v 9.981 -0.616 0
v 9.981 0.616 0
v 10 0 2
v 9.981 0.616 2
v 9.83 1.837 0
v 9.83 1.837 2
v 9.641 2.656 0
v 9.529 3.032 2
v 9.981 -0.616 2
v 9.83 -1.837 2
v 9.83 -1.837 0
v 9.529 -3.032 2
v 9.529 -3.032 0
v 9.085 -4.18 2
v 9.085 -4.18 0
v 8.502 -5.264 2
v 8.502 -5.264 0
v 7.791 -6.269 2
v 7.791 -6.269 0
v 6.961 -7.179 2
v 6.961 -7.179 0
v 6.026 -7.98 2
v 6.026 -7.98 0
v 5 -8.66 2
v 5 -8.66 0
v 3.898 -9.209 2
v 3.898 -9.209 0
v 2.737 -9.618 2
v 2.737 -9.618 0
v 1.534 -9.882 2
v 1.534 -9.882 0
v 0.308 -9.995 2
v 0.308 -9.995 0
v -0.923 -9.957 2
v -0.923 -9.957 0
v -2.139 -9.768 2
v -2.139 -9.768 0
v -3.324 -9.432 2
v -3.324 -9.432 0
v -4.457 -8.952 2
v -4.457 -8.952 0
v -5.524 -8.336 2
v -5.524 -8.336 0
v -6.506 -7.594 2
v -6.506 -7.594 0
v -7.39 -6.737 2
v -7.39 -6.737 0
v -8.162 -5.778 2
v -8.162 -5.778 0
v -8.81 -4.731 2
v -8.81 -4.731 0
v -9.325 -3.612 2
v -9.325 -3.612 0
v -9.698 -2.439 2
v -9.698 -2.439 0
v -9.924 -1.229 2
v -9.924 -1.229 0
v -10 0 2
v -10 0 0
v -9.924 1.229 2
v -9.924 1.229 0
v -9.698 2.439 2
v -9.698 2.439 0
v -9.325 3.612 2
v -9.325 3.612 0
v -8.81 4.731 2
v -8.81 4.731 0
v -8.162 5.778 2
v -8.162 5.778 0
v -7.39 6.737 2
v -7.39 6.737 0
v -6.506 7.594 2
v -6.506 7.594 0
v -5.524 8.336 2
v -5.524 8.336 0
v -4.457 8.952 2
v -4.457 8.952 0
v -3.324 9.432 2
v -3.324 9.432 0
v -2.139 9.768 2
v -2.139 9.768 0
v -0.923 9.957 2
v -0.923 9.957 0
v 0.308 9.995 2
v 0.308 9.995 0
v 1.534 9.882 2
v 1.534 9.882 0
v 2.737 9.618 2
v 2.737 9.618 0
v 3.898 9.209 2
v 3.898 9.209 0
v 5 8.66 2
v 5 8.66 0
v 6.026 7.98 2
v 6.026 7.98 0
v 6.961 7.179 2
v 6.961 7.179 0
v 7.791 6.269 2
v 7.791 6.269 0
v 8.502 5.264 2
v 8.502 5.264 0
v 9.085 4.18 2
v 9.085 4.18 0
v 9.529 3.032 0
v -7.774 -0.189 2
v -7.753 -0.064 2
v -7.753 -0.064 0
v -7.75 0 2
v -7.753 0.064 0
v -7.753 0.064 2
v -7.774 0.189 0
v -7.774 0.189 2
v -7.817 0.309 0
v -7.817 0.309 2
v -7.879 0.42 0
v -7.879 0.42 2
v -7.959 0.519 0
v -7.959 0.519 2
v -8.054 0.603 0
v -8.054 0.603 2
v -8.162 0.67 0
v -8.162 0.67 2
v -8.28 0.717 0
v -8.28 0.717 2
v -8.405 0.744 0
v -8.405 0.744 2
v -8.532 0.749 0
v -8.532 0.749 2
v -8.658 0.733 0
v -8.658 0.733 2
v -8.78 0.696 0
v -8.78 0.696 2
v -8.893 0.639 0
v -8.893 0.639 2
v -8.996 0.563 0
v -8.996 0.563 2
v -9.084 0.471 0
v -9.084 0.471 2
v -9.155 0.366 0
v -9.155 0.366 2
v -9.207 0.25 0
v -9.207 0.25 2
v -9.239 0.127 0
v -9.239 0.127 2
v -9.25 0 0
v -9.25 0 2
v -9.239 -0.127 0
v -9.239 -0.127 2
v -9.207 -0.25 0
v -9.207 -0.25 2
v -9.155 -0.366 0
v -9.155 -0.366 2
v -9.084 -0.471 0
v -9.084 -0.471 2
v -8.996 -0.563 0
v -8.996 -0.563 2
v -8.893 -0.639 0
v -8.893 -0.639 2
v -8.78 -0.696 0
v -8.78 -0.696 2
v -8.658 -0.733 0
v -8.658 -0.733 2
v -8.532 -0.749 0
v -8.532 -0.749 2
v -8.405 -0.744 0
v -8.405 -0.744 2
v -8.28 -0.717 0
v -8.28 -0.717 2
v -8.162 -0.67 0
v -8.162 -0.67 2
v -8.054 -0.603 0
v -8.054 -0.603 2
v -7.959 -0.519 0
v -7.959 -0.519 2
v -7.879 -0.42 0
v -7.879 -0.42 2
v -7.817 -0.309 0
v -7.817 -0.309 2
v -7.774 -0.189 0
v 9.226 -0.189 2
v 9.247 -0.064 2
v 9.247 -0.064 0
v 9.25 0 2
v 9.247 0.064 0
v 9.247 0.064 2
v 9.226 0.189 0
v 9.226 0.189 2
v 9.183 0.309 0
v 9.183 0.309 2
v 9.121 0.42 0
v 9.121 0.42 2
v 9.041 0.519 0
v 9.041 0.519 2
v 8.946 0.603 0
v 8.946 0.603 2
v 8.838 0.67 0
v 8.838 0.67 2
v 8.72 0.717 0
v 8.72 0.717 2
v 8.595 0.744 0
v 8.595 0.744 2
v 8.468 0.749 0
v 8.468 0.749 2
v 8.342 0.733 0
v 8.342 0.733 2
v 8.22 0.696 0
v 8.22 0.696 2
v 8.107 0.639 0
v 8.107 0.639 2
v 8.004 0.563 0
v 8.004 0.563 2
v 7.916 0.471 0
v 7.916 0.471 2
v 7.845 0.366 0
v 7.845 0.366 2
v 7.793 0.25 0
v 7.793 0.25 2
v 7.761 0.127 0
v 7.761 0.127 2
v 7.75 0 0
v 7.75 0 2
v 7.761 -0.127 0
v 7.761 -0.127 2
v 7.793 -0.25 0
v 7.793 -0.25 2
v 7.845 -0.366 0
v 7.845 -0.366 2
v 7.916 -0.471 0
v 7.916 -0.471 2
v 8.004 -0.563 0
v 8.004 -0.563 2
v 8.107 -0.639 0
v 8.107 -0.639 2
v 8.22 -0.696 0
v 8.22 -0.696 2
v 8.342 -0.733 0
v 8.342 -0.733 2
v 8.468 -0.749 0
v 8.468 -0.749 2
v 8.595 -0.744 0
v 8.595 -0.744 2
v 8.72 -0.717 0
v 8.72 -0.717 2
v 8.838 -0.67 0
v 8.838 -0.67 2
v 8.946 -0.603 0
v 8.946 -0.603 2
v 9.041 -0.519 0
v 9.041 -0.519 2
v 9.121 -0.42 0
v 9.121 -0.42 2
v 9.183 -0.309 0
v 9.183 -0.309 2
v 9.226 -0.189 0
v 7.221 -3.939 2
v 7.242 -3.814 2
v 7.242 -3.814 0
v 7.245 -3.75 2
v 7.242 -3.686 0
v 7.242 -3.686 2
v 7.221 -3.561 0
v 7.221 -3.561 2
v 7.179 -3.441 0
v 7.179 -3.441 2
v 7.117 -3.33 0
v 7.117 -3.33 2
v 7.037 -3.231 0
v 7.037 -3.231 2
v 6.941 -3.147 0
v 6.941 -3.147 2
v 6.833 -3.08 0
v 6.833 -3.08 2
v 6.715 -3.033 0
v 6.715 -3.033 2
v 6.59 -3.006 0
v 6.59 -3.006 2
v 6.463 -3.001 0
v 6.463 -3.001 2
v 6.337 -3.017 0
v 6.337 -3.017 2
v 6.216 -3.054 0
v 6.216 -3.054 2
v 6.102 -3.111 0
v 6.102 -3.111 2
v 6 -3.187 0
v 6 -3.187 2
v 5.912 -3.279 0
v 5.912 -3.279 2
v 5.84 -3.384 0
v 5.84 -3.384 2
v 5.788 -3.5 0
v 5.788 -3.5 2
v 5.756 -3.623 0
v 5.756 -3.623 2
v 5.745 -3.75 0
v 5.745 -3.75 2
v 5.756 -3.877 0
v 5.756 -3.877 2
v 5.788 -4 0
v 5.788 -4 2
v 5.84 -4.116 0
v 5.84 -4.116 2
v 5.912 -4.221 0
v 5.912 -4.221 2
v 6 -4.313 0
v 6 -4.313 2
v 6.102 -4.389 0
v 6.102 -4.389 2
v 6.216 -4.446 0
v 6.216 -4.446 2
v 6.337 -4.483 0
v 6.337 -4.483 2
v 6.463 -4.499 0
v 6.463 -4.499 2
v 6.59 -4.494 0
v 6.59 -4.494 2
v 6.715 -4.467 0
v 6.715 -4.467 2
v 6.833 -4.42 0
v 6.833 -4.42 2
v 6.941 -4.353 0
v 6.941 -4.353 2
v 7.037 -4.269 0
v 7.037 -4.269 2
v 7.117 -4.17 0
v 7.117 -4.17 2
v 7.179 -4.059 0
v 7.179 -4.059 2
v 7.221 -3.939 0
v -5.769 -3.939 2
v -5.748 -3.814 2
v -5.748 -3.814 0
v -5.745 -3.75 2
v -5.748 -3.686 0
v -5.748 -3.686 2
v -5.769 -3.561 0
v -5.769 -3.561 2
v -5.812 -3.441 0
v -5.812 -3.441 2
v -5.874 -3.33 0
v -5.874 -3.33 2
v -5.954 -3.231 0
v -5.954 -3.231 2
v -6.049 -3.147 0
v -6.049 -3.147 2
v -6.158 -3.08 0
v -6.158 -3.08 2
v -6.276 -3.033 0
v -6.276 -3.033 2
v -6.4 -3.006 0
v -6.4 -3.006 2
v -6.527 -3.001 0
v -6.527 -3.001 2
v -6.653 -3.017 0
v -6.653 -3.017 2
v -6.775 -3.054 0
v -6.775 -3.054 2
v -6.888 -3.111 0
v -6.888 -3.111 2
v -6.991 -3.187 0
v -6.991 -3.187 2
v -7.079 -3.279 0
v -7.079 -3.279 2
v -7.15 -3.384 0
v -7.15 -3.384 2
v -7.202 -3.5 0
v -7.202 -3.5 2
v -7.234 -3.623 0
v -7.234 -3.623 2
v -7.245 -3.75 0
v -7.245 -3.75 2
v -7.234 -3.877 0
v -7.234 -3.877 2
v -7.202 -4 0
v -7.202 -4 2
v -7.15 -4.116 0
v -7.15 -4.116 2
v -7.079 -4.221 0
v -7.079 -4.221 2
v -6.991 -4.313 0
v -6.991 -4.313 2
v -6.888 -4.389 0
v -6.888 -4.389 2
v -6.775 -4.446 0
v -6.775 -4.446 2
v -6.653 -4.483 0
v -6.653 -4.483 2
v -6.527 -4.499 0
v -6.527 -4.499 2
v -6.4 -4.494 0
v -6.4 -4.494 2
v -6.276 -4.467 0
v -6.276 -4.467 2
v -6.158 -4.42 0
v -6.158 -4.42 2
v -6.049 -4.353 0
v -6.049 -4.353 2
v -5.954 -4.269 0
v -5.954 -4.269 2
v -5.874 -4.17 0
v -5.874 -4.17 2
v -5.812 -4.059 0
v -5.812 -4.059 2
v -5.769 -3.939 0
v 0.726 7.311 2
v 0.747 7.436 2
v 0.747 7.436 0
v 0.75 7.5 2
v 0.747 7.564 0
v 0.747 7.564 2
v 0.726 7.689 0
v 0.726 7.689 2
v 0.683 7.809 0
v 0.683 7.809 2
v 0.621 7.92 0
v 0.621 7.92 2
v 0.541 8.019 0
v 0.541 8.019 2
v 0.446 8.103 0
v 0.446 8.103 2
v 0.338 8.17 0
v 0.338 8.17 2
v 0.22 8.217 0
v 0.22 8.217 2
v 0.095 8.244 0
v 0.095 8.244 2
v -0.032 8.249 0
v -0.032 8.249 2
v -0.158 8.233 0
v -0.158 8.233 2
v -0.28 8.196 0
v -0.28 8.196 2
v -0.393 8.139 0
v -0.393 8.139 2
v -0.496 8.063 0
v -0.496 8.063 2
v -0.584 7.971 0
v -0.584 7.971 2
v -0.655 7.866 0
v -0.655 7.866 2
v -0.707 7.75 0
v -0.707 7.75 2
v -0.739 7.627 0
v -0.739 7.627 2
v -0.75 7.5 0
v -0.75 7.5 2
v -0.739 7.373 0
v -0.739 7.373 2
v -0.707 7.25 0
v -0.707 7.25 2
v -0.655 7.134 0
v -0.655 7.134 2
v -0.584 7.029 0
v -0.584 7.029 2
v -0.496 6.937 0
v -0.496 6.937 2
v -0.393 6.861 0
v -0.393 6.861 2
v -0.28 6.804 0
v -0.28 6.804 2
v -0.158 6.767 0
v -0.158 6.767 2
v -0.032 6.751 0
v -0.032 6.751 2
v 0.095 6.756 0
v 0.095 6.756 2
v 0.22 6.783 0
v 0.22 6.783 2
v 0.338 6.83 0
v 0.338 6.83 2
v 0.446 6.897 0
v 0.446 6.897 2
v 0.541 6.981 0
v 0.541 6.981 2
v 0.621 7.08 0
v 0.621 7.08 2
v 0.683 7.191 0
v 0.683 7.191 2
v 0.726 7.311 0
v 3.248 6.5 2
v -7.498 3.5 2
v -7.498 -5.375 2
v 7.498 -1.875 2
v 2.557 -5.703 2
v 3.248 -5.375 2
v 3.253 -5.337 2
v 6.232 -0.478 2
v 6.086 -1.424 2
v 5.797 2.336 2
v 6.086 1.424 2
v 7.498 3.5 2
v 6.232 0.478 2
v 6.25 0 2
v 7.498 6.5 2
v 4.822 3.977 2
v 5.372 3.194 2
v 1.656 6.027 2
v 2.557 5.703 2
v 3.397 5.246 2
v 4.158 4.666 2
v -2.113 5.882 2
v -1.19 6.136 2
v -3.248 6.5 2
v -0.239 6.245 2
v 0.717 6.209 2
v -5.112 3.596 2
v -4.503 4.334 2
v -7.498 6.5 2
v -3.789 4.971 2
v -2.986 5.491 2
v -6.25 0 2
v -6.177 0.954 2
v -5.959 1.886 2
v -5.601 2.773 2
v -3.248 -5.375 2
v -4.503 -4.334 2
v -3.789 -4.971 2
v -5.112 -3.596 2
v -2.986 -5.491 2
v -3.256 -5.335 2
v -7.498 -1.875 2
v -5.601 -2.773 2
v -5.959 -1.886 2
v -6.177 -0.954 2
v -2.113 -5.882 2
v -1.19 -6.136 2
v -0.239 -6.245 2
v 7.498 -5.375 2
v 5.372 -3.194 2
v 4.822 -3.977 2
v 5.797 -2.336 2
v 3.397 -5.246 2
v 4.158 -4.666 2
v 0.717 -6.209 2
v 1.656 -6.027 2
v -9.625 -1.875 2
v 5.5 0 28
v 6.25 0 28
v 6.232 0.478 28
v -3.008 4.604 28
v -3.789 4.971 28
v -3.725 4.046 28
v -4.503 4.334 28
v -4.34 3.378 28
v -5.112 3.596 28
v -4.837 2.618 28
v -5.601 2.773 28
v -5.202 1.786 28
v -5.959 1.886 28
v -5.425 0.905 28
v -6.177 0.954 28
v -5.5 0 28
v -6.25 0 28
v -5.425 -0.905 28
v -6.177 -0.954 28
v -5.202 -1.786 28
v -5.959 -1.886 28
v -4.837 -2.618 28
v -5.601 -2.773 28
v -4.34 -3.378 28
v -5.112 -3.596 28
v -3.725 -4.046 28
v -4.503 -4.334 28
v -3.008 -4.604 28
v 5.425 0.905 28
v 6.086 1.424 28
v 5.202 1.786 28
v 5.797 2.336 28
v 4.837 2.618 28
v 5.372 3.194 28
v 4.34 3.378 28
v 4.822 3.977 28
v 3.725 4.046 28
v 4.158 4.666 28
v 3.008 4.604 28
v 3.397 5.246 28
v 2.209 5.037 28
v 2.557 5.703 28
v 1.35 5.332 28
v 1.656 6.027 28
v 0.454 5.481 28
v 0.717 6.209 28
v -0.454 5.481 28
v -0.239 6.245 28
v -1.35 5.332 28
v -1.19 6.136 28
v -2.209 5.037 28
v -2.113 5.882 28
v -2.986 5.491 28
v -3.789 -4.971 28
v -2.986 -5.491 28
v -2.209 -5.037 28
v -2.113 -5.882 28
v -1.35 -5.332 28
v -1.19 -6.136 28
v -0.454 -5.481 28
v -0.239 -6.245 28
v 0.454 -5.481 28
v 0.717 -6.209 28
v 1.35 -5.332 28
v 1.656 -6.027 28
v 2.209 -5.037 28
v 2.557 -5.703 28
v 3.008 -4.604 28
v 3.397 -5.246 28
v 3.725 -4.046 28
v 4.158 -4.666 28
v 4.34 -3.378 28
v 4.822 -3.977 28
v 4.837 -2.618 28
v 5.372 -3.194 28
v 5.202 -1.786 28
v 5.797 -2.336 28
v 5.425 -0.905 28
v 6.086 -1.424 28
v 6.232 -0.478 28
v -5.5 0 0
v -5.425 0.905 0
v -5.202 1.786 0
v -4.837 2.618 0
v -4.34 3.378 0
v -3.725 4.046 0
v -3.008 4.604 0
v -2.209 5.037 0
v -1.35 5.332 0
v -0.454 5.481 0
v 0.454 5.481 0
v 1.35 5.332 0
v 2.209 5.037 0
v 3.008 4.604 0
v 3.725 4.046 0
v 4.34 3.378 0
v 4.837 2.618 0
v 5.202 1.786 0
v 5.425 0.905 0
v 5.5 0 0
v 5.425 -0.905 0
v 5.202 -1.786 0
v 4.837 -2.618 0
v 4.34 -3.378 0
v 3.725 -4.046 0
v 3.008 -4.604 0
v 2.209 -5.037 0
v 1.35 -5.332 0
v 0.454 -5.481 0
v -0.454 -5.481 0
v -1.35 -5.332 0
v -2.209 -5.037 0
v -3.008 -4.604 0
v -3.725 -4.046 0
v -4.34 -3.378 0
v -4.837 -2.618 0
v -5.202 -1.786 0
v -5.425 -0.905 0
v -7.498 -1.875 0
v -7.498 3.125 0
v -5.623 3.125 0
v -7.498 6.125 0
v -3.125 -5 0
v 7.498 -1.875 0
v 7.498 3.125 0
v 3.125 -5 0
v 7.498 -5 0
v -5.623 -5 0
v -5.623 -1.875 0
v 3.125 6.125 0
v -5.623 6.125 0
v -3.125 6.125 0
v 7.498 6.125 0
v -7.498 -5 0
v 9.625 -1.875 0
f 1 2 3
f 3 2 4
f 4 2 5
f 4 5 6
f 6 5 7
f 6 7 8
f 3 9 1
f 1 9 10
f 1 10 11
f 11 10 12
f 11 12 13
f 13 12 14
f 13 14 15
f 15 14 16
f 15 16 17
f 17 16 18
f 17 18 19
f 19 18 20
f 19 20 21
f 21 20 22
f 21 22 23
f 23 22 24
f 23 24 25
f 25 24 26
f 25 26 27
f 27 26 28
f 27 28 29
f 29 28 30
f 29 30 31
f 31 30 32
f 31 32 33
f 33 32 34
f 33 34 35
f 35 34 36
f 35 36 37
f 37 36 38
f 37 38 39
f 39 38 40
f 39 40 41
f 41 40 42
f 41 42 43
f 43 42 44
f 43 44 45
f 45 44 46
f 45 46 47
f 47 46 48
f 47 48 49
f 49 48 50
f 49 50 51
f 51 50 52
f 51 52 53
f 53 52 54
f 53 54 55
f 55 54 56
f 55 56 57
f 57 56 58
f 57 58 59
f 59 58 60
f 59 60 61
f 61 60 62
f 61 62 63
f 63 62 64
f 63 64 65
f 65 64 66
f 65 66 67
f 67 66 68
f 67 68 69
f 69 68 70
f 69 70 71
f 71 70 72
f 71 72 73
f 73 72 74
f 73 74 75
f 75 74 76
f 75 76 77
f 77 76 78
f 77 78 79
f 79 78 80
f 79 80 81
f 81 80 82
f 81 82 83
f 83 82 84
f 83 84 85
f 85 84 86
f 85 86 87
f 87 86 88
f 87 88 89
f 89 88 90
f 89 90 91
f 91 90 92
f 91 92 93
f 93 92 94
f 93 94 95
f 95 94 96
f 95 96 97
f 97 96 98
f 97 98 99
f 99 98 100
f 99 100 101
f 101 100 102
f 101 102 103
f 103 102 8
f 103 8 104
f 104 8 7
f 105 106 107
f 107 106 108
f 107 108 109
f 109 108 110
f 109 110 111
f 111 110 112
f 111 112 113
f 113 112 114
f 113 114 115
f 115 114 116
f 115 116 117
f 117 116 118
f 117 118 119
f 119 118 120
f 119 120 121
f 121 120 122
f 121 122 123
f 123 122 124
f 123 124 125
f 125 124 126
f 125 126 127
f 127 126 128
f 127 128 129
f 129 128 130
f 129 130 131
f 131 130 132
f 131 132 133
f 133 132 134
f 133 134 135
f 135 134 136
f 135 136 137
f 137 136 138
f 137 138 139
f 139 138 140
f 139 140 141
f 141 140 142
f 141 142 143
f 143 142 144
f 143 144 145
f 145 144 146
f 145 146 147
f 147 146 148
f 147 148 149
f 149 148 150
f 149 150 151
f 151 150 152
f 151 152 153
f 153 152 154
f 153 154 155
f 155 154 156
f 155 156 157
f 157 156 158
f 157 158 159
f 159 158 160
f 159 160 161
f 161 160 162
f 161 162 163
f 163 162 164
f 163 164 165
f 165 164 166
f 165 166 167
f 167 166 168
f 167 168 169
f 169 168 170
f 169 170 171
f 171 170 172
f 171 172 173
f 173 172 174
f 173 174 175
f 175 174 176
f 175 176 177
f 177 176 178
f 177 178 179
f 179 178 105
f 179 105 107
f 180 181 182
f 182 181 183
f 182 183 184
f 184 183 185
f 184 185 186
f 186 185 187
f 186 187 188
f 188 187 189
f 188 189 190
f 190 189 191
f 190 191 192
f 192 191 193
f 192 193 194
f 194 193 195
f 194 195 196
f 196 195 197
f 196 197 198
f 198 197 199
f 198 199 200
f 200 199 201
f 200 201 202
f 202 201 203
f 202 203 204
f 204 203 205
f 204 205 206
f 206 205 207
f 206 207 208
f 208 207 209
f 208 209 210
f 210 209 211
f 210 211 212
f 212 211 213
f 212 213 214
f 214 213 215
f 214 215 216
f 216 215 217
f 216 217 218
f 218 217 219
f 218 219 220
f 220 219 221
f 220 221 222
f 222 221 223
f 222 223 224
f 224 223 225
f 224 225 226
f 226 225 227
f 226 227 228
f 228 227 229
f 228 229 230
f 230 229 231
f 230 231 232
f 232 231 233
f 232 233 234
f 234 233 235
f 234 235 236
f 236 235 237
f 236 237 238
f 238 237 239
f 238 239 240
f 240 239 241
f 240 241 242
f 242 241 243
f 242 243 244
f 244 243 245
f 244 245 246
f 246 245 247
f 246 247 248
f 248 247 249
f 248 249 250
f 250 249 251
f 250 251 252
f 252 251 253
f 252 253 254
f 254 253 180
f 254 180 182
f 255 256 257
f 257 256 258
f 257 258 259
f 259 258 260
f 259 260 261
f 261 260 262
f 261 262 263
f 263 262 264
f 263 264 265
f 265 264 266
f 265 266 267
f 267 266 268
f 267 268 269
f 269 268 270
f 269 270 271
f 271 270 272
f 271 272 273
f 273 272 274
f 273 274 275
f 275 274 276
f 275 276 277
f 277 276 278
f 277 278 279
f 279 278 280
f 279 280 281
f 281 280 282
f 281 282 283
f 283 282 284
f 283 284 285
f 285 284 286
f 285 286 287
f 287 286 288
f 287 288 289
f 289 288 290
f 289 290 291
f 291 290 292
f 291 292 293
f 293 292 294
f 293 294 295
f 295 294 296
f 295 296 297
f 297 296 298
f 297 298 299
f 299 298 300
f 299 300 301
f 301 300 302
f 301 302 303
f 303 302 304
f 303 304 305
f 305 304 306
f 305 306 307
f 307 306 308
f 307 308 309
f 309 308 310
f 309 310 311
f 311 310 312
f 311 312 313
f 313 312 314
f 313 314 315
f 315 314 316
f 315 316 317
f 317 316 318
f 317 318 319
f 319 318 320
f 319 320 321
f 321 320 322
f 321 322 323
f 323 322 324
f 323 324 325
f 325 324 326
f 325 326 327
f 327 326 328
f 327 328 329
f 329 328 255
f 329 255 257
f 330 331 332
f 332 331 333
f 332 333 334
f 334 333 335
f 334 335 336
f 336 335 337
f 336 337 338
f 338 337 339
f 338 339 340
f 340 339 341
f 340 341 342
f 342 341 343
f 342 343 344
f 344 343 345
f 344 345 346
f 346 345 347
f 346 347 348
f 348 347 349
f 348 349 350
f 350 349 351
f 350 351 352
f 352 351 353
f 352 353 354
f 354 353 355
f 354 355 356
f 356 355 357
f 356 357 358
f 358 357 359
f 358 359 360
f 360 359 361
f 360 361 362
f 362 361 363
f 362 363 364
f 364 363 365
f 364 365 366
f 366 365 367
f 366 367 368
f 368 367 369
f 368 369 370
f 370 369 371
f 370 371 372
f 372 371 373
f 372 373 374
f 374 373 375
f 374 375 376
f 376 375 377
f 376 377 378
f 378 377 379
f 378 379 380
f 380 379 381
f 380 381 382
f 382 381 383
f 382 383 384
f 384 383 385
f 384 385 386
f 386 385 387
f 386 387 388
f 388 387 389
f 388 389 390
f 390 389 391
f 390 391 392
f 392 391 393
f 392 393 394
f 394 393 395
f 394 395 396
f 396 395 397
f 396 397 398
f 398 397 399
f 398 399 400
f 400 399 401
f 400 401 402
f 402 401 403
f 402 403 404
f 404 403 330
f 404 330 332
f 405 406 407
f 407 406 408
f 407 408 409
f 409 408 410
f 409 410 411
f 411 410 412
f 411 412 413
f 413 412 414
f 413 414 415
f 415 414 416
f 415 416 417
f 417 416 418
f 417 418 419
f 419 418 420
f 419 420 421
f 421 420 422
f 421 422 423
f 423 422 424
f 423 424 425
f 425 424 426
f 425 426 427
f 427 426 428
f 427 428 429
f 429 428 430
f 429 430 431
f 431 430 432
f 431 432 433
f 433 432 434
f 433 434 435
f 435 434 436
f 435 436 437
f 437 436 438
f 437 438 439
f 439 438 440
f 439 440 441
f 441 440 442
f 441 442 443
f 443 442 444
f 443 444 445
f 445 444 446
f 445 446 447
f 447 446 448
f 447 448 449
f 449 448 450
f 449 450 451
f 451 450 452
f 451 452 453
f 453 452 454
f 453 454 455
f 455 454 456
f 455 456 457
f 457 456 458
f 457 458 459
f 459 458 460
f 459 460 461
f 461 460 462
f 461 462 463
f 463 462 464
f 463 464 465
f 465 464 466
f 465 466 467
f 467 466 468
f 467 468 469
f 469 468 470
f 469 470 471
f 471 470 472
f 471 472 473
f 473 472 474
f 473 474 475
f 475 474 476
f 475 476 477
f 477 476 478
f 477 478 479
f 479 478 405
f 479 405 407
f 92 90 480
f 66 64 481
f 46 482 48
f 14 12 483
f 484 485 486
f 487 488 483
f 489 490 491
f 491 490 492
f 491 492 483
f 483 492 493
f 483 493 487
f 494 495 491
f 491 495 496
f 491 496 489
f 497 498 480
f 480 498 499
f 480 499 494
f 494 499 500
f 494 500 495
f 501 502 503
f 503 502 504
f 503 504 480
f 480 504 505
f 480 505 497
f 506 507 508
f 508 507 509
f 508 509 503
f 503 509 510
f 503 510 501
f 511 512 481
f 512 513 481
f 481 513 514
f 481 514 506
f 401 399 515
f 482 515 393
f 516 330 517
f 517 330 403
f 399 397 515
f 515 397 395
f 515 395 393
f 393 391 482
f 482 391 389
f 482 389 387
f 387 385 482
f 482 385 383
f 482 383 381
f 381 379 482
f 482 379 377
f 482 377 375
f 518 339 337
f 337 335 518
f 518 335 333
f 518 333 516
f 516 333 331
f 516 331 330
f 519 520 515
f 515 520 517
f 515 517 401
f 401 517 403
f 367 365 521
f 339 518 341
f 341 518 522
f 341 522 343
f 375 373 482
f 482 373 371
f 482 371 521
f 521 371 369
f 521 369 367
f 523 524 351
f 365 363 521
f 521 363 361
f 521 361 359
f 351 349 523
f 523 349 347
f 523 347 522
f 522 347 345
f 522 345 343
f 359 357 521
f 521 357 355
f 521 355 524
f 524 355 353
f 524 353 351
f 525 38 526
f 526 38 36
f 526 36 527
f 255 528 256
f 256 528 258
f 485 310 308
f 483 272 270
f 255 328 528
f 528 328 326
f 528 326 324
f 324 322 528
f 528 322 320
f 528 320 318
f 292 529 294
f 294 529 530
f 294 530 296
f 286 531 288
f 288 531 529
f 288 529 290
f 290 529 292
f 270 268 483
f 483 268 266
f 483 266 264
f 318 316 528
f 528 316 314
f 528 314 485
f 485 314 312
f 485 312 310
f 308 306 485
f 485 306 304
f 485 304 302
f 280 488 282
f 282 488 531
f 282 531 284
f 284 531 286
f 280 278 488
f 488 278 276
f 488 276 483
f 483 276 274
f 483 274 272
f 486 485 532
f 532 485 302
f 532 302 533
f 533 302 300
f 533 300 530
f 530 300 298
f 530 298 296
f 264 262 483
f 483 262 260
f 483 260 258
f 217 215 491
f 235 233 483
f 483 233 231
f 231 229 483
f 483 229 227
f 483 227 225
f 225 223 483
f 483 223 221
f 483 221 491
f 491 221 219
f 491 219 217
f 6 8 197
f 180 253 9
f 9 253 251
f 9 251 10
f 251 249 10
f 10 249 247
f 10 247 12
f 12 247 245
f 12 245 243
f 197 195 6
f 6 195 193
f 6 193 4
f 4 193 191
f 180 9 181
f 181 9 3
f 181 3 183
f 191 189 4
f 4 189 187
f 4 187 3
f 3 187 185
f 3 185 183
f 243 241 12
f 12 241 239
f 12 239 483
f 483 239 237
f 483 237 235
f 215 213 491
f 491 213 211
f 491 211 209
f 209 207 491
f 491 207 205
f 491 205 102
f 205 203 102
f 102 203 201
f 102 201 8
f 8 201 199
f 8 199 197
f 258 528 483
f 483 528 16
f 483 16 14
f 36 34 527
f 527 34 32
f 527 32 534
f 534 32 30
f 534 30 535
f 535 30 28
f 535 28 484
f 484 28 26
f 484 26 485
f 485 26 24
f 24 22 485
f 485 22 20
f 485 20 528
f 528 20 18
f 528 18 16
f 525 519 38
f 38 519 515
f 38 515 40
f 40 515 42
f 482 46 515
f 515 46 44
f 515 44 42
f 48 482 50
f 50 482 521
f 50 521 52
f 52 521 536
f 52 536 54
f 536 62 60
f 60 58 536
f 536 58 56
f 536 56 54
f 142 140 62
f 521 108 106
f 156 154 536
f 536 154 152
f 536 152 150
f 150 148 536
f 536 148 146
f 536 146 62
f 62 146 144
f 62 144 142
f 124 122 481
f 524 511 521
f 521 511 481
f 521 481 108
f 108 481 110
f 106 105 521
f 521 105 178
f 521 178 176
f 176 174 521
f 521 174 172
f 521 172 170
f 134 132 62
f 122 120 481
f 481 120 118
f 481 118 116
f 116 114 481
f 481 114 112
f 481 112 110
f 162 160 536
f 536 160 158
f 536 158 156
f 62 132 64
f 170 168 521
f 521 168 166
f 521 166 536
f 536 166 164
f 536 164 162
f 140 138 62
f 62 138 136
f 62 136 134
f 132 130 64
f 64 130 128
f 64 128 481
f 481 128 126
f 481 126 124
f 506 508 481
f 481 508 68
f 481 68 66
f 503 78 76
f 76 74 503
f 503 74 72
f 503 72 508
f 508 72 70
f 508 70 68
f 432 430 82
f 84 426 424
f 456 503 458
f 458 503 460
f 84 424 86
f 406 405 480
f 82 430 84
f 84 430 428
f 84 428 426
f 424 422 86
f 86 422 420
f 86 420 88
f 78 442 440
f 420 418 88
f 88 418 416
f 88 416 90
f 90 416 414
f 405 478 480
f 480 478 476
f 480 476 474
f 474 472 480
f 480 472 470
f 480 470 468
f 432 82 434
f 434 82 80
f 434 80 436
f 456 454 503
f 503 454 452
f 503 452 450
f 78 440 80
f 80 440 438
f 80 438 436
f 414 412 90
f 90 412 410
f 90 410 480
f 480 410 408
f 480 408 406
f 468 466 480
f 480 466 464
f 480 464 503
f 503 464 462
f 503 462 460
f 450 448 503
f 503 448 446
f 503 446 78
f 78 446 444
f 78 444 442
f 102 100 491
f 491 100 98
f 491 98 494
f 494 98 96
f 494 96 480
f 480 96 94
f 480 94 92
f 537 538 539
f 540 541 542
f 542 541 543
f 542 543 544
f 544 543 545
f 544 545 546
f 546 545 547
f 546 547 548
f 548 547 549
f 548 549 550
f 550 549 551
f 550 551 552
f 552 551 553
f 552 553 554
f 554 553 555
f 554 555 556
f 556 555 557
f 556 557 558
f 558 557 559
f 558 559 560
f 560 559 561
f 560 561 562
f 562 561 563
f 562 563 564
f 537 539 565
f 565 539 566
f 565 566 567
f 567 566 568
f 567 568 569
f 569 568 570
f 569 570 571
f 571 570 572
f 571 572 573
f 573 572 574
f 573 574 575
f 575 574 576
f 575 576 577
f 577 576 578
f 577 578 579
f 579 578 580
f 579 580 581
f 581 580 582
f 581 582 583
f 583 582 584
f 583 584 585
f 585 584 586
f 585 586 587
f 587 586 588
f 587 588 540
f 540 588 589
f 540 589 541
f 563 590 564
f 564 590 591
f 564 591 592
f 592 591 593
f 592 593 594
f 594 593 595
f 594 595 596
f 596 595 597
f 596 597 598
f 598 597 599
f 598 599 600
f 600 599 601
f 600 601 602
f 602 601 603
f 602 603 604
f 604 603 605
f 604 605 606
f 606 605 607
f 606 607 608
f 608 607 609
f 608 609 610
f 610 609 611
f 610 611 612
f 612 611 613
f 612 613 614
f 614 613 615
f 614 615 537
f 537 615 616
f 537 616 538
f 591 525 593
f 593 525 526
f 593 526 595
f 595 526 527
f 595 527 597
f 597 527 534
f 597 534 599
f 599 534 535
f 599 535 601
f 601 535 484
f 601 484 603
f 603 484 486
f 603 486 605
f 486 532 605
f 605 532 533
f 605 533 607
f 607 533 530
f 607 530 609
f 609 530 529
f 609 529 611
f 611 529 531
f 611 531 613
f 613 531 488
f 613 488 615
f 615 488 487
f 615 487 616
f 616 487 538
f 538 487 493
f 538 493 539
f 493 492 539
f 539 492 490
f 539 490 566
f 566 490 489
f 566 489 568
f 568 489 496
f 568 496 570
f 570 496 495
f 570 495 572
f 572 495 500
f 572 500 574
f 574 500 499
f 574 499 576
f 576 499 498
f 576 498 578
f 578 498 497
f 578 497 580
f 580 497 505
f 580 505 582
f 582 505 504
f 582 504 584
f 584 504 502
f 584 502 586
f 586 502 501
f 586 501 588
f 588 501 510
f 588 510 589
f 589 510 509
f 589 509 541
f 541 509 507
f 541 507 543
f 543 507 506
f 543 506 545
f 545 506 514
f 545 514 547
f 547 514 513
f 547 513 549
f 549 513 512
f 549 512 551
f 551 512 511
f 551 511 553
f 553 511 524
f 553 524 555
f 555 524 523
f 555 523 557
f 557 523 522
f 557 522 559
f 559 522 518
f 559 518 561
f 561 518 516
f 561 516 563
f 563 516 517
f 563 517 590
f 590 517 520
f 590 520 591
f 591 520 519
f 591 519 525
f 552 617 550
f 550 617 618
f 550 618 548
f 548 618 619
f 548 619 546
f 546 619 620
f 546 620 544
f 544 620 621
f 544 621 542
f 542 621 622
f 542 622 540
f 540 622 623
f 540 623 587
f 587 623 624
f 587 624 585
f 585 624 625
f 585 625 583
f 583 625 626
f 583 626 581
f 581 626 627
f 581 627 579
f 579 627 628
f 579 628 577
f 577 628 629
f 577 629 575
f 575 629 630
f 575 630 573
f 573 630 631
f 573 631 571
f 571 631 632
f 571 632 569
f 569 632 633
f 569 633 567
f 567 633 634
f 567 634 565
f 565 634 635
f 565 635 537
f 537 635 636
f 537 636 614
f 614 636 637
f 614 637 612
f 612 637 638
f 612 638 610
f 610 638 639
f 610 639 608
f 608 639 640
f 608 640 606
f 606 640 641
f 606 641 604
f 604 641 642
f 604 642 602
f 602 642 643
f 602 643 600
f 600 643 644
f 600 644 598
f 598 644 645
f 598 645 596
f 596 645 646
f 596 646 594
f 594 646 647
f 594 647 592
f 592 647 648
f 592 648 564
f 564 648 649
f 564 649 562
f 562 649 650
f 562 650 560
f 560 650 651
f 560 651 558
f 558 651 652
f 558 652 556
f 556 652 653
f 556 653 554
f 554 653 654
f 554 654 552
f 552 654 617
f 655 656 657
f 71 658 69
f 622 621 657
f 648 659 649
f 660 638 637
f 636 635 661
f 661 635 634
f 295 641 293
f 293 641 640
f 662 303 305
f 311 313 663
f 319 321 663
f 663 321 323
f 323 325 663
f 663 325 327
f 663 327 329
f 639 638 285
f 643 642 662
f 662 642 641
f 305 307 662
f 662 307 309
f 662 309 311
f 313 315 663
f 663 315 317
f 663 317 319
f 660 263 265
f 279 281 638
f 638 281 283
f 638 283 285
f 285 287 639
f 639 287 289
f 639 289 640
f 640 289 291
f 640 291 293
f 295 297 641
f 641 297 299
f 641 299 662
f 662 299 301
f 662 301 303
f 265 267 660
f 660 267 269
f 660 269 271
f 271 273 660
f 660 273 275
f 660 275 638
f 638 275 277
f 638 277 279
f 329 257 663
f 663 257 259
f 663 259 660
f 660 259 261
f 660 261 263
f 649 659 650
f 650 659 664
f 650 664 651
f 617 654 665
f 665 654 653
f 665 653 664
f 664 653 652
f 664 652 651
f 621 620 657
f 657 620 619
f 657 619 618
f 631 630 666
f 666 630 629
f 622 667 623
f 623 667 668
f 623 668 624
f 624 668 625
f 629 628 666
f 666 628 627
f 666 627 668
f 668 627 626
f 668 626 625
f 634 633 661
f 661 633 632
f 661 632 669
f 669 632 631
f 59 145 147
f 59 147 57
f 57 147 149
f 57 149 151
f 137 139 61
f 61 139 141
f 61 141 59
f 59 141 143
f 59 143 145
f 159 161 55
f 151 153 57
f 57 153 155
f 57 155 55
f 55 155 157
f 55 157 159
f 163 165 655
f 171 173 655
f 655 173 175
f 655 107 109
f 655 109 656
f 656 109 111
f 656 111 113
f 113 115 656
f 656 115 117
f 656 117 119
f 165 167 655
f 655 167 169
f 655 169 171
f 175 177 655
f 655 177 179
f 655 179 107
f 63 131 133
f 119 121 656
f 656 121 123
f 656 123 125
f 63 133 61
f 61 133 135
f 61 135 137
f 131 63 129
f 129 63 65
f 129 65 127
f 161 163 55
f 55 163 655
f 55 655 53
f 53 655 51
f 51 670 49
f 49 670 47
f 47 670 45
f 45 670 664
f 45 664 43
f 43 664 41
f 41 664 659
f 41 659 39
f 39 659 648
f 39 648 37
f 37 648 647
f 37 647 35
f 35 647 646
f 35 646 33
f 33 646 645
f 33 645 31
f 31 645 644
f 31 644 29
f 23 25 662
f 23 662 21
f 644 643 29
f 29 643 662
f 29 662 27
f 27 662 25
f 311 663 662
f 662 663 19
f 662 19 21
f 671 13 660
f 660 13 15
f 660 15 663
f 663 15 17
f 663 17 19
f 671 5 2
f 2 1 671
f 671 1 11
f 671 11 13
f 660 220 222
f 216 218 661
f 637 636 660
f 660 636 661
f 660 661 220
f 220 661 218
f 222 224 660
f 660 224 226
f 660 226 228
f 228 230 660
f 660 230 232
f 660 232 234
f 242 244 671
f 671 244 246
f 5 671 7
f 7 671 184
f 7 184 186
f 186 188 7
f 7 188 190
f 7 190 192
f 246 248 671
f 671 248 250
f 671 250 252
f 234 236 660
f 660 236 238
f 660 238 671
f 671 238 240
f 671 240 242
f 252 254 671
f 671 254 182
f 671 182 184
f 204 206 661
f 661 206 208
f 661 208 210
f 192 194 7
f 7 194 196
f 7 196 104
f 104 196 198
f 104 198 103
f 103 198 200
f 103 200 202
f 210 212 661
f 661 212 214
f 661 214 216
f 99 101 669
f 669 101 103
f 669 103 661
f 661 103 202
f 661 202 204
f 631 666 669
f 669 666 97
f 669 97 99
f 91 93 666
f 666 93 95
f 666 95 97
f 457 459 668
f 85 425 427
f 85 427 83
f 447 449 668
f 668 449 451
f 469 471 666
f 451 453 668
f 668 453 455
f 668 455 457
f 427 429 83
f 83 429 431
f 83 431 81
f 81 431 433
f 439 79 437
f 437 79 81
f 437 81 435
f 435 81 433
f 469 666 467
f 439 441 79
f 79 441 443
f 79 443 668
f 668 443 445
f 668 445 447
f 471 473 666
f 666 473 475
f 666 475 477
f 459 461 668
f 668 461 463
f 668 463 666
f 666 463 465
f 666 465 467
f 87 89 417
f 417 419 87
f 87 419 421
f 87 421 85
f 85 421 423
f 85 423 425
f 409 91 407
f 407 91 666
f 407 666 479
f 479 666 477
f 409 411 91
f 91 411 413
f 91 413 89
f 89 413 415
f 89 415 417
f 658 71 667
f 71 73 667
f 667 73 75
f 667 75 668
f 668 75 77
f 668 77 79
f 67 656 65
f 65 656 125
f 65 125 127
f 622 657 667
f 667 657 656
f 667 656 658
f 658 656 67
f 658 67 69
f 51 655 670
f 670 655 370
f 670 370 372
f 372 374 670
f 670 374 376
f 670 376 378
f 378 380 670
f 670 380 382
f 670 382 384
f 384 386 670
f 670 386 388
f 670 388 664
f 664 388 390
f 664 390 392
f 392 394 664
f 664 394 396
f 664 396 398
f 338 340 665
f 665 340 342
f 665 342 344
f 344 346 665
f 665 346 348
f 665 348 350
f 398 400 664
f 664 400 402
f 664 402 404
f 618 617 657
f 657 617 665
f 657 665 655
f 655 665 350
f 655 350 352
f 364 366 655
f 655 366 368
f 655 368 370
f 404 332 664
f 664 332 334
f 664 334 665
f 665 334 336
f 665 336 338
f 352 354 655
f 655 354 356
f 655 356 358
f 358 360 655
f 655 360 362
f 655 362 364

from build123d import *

# Parameters (mm, degrees)
SKETCH1_R           = 10
SKETCH1_R_2         = 5.5
BOSS_EXTRUDE1_DEPTH = 2
SKETCH3_R           = 3
BOSS_EXTRUDE2_DEPTH = 12
SKETCH4_R           = 10
SKETCH4_R_2         = 3
BOSS_EXTRUDE3_DEPTH = 2
CHAMFER2_SIZE       = 1
CHAMFER4_SIZE       = 0.5
CUT_EXTRUDE1_REACH  = 6
SKETCH5_R           = 0.75
SKETCH6_R           = 6.25
SKETCH6_R_2         = 5.5
BOSS_EXTRUDE4_DEPTH = 26
CUT_EXTRUDE2_REACH  = 32
SKETCH7_R           = 0.75
SKETCH8_R           = 16.614534325
CUT_EXTRUDE3_DEPTH  = 12


with BuildPart() as part:
    # Sketch1 → Boss-Extrude1 (new body)
    with BuildSketch(Plane.XY):
        Circle(SKETCH1_R)
        Circle(SKETCH1_R_2, mode=Mode.SUBTRACT)
    extrude(amount=BOSS_EXTRUDE1_DEPTH)



with BuildPart() as body_2:
    # Sketch3 → Boss-Extrude2 (new body)
    with BuildSketch(Plane(origin=(0, 0, 0), x_dir=(-1, 0, 0), z_dir=(0, 0, -1))):
        Circle(SKETCH3_R)
    extrude(amount=BOSS_EXTRUDE2_DEPTH)


with BuildPart() as part_1:
    add(part.part)

    add(body_2.part)  # Boss-Extrude3 merges body 2
    # Sketch4 → Boss-Extrude3 (add)
    with BuildSketch(Plane(origin=(0, 0, 0), x_dir=(-1, 0, 0), z_dir=(0, 0, -1))):
        Circle(SKETCH4_R)
        Circle(SKETCH4_R_2, mode=Mode.SUBTRACT)
    extrude(amount=BOSS_EXTRUDE3_DEPTH)

    # Chamfer2
    chamfer2_edges = [part_1.edges().sort_by_distance(p)[0] for p in [
        (3, 0, -2),
    ]]
    chamfer(chamfer2_edges, length=CHAMFER2_SIZE)

    # Chamfer4
    chamfer4_edges = [part_1.edges().sort_by_distance(p)[0] for p in [
        (3, 0, -12),
    ]]
    chamfer(chamfer4_edges, length=CHAMFER4_SIZE)

    # Sketch5 → Cut-Extrude1 (cut, up to next)
    with BuildSketch(Plane(origin=(0, 0, -2), x_dir=(-1, 0, 0), z_dir=(0, 0, -1)), mode=Mode.PRIVATE) as cut_extrude1_sk1:
        with Locations((-8.5, 0)):
            Circle(SKETCH5_R)
    cut_extrude1_tool1 = extrude(cut_extrude1_sk1.sketch, amount=-CUT_EXTRUDE1_REACH, mode=Mode.PRIVATE) & part_1.part
    add(cut_extrude1_tool1.solids().sort_by_distance((8.5, 0, -2))[0], mode=Mode.SUBTRACT)
    # Sketch5 → Cut-Extrude1 (cut, up to next)
    with BuildSketch(Plane(origin=(0, 0, -2), x_dir=(-1, 0, 0), z_dir=(0, 0, -1)), mode=Mode.PRIVATE) as cut_extrude1_sk2:
        with Locations((8.5, 0)):
            Circle(SKETCH5_R)
    cut_extrude1_tool2 = extrude(cut_extrude1_sk2.sketch, amount=-CUT_EXTRUDE1_REACH, mode=Mode.PRIVATE) & part_1.part
    add(cut_extrude1_tool2.solids().sort_by_distance((-8.5, 0, -2))[0], mode=Mode.SUBTRACT)

    # Sketch6 → Boss-Extrude4 (add)
    with BuildSketch(Plane.XY.offset(2)):
        Circle(SKETCH6_R)
        Circle(SKETCH6_R_2, mode=Mode.SUBTRACT)
    extrude(amount=BOSS_EXTRUDE4_DEPTH)

    # Sketch7 → Cut-Extrude2 (cut, up to next)
    with BuildSketch(Plane(origin=(0, 0, -2), x_dir=(-1, 0, 0), z_dir=(0, 0, -1)), mode=Mode.PRIVATE) as cut_extrude2_sk1:
        with Locations((0, 7.5)):
            Circle(SKETCH7_R)
    cut_extrude2_tool1 = extrude(cut_extrude2_sk1.sketch, amount=-CUT_EXTRUDE2_REACH, mode=Mode.PRIVATE) & part_1.part
    add(cut_extrude2_tool1.solids().sort_by_distance((0, 7.5, -2))[0], mode=Mode.SUBTRACT)
    # Sketch7 → Cut-Extrude2 (cut, up to next)
    with BuildSketch(Plane(origin=(0, 0, -2), x_dir=(-1, 0, 0), z_dir=(0, 0, -1)), mode=Mode.PRIVATE) as cut_extrude2_sk2:
        with Locations((6.495190528, -3.75)):
            Circle(SKETCH7_R)
    cut_extrude2_tool2 = extrude(cut_extrude2_sk2.sketch, amount=-CUT_EXTRUDE2_REACH, mode=Mode.PRIVATE) & part_1.part
    add(cut_extrude2_tool2.solids().sort_by_distance((-6.495191, -3.75, -2))[0], mode=Mode.SUBTRACT)
    # Sketch7 → Cut-Extrude2 (cut, up to next)
    with BuildSketch(Plane(origin=(0, 0, -2), x_dir=(-1, 0, 0), z_dir=(0, 0, -1)), mode=Mode.PRIVATE) as cut_extrude2_sk3:
        with Locations((-6.495190528, -3.75)):
            Circle(SKETCH7_R)
    cut_extrude2_tool3 = extrude(cut_extrude2_sk3.sketch, amount=-CUT_EXTRUDE2_REACH, mode=Mode.PRIVATE) & part_1.part
    add(cut_extrude2_tool3.solids().sort_by_distance((6.495191, -3.75, -2))[0], mode=Mode.SUBTRACT)

    # Sketch8 → Cut-Extrude3 (cut)
    with BuildSketch(Plane(origin=(0, 0, -12), x_dir=(-1, 0, 0), z_dir=(0, 0, -1))):
        Circle(SKETCH8_R)
    extrude(amount=-CUT_EXTRUDE3_DEPTH, mode=Mode.SUBTRACT)


solid = part_1.part
